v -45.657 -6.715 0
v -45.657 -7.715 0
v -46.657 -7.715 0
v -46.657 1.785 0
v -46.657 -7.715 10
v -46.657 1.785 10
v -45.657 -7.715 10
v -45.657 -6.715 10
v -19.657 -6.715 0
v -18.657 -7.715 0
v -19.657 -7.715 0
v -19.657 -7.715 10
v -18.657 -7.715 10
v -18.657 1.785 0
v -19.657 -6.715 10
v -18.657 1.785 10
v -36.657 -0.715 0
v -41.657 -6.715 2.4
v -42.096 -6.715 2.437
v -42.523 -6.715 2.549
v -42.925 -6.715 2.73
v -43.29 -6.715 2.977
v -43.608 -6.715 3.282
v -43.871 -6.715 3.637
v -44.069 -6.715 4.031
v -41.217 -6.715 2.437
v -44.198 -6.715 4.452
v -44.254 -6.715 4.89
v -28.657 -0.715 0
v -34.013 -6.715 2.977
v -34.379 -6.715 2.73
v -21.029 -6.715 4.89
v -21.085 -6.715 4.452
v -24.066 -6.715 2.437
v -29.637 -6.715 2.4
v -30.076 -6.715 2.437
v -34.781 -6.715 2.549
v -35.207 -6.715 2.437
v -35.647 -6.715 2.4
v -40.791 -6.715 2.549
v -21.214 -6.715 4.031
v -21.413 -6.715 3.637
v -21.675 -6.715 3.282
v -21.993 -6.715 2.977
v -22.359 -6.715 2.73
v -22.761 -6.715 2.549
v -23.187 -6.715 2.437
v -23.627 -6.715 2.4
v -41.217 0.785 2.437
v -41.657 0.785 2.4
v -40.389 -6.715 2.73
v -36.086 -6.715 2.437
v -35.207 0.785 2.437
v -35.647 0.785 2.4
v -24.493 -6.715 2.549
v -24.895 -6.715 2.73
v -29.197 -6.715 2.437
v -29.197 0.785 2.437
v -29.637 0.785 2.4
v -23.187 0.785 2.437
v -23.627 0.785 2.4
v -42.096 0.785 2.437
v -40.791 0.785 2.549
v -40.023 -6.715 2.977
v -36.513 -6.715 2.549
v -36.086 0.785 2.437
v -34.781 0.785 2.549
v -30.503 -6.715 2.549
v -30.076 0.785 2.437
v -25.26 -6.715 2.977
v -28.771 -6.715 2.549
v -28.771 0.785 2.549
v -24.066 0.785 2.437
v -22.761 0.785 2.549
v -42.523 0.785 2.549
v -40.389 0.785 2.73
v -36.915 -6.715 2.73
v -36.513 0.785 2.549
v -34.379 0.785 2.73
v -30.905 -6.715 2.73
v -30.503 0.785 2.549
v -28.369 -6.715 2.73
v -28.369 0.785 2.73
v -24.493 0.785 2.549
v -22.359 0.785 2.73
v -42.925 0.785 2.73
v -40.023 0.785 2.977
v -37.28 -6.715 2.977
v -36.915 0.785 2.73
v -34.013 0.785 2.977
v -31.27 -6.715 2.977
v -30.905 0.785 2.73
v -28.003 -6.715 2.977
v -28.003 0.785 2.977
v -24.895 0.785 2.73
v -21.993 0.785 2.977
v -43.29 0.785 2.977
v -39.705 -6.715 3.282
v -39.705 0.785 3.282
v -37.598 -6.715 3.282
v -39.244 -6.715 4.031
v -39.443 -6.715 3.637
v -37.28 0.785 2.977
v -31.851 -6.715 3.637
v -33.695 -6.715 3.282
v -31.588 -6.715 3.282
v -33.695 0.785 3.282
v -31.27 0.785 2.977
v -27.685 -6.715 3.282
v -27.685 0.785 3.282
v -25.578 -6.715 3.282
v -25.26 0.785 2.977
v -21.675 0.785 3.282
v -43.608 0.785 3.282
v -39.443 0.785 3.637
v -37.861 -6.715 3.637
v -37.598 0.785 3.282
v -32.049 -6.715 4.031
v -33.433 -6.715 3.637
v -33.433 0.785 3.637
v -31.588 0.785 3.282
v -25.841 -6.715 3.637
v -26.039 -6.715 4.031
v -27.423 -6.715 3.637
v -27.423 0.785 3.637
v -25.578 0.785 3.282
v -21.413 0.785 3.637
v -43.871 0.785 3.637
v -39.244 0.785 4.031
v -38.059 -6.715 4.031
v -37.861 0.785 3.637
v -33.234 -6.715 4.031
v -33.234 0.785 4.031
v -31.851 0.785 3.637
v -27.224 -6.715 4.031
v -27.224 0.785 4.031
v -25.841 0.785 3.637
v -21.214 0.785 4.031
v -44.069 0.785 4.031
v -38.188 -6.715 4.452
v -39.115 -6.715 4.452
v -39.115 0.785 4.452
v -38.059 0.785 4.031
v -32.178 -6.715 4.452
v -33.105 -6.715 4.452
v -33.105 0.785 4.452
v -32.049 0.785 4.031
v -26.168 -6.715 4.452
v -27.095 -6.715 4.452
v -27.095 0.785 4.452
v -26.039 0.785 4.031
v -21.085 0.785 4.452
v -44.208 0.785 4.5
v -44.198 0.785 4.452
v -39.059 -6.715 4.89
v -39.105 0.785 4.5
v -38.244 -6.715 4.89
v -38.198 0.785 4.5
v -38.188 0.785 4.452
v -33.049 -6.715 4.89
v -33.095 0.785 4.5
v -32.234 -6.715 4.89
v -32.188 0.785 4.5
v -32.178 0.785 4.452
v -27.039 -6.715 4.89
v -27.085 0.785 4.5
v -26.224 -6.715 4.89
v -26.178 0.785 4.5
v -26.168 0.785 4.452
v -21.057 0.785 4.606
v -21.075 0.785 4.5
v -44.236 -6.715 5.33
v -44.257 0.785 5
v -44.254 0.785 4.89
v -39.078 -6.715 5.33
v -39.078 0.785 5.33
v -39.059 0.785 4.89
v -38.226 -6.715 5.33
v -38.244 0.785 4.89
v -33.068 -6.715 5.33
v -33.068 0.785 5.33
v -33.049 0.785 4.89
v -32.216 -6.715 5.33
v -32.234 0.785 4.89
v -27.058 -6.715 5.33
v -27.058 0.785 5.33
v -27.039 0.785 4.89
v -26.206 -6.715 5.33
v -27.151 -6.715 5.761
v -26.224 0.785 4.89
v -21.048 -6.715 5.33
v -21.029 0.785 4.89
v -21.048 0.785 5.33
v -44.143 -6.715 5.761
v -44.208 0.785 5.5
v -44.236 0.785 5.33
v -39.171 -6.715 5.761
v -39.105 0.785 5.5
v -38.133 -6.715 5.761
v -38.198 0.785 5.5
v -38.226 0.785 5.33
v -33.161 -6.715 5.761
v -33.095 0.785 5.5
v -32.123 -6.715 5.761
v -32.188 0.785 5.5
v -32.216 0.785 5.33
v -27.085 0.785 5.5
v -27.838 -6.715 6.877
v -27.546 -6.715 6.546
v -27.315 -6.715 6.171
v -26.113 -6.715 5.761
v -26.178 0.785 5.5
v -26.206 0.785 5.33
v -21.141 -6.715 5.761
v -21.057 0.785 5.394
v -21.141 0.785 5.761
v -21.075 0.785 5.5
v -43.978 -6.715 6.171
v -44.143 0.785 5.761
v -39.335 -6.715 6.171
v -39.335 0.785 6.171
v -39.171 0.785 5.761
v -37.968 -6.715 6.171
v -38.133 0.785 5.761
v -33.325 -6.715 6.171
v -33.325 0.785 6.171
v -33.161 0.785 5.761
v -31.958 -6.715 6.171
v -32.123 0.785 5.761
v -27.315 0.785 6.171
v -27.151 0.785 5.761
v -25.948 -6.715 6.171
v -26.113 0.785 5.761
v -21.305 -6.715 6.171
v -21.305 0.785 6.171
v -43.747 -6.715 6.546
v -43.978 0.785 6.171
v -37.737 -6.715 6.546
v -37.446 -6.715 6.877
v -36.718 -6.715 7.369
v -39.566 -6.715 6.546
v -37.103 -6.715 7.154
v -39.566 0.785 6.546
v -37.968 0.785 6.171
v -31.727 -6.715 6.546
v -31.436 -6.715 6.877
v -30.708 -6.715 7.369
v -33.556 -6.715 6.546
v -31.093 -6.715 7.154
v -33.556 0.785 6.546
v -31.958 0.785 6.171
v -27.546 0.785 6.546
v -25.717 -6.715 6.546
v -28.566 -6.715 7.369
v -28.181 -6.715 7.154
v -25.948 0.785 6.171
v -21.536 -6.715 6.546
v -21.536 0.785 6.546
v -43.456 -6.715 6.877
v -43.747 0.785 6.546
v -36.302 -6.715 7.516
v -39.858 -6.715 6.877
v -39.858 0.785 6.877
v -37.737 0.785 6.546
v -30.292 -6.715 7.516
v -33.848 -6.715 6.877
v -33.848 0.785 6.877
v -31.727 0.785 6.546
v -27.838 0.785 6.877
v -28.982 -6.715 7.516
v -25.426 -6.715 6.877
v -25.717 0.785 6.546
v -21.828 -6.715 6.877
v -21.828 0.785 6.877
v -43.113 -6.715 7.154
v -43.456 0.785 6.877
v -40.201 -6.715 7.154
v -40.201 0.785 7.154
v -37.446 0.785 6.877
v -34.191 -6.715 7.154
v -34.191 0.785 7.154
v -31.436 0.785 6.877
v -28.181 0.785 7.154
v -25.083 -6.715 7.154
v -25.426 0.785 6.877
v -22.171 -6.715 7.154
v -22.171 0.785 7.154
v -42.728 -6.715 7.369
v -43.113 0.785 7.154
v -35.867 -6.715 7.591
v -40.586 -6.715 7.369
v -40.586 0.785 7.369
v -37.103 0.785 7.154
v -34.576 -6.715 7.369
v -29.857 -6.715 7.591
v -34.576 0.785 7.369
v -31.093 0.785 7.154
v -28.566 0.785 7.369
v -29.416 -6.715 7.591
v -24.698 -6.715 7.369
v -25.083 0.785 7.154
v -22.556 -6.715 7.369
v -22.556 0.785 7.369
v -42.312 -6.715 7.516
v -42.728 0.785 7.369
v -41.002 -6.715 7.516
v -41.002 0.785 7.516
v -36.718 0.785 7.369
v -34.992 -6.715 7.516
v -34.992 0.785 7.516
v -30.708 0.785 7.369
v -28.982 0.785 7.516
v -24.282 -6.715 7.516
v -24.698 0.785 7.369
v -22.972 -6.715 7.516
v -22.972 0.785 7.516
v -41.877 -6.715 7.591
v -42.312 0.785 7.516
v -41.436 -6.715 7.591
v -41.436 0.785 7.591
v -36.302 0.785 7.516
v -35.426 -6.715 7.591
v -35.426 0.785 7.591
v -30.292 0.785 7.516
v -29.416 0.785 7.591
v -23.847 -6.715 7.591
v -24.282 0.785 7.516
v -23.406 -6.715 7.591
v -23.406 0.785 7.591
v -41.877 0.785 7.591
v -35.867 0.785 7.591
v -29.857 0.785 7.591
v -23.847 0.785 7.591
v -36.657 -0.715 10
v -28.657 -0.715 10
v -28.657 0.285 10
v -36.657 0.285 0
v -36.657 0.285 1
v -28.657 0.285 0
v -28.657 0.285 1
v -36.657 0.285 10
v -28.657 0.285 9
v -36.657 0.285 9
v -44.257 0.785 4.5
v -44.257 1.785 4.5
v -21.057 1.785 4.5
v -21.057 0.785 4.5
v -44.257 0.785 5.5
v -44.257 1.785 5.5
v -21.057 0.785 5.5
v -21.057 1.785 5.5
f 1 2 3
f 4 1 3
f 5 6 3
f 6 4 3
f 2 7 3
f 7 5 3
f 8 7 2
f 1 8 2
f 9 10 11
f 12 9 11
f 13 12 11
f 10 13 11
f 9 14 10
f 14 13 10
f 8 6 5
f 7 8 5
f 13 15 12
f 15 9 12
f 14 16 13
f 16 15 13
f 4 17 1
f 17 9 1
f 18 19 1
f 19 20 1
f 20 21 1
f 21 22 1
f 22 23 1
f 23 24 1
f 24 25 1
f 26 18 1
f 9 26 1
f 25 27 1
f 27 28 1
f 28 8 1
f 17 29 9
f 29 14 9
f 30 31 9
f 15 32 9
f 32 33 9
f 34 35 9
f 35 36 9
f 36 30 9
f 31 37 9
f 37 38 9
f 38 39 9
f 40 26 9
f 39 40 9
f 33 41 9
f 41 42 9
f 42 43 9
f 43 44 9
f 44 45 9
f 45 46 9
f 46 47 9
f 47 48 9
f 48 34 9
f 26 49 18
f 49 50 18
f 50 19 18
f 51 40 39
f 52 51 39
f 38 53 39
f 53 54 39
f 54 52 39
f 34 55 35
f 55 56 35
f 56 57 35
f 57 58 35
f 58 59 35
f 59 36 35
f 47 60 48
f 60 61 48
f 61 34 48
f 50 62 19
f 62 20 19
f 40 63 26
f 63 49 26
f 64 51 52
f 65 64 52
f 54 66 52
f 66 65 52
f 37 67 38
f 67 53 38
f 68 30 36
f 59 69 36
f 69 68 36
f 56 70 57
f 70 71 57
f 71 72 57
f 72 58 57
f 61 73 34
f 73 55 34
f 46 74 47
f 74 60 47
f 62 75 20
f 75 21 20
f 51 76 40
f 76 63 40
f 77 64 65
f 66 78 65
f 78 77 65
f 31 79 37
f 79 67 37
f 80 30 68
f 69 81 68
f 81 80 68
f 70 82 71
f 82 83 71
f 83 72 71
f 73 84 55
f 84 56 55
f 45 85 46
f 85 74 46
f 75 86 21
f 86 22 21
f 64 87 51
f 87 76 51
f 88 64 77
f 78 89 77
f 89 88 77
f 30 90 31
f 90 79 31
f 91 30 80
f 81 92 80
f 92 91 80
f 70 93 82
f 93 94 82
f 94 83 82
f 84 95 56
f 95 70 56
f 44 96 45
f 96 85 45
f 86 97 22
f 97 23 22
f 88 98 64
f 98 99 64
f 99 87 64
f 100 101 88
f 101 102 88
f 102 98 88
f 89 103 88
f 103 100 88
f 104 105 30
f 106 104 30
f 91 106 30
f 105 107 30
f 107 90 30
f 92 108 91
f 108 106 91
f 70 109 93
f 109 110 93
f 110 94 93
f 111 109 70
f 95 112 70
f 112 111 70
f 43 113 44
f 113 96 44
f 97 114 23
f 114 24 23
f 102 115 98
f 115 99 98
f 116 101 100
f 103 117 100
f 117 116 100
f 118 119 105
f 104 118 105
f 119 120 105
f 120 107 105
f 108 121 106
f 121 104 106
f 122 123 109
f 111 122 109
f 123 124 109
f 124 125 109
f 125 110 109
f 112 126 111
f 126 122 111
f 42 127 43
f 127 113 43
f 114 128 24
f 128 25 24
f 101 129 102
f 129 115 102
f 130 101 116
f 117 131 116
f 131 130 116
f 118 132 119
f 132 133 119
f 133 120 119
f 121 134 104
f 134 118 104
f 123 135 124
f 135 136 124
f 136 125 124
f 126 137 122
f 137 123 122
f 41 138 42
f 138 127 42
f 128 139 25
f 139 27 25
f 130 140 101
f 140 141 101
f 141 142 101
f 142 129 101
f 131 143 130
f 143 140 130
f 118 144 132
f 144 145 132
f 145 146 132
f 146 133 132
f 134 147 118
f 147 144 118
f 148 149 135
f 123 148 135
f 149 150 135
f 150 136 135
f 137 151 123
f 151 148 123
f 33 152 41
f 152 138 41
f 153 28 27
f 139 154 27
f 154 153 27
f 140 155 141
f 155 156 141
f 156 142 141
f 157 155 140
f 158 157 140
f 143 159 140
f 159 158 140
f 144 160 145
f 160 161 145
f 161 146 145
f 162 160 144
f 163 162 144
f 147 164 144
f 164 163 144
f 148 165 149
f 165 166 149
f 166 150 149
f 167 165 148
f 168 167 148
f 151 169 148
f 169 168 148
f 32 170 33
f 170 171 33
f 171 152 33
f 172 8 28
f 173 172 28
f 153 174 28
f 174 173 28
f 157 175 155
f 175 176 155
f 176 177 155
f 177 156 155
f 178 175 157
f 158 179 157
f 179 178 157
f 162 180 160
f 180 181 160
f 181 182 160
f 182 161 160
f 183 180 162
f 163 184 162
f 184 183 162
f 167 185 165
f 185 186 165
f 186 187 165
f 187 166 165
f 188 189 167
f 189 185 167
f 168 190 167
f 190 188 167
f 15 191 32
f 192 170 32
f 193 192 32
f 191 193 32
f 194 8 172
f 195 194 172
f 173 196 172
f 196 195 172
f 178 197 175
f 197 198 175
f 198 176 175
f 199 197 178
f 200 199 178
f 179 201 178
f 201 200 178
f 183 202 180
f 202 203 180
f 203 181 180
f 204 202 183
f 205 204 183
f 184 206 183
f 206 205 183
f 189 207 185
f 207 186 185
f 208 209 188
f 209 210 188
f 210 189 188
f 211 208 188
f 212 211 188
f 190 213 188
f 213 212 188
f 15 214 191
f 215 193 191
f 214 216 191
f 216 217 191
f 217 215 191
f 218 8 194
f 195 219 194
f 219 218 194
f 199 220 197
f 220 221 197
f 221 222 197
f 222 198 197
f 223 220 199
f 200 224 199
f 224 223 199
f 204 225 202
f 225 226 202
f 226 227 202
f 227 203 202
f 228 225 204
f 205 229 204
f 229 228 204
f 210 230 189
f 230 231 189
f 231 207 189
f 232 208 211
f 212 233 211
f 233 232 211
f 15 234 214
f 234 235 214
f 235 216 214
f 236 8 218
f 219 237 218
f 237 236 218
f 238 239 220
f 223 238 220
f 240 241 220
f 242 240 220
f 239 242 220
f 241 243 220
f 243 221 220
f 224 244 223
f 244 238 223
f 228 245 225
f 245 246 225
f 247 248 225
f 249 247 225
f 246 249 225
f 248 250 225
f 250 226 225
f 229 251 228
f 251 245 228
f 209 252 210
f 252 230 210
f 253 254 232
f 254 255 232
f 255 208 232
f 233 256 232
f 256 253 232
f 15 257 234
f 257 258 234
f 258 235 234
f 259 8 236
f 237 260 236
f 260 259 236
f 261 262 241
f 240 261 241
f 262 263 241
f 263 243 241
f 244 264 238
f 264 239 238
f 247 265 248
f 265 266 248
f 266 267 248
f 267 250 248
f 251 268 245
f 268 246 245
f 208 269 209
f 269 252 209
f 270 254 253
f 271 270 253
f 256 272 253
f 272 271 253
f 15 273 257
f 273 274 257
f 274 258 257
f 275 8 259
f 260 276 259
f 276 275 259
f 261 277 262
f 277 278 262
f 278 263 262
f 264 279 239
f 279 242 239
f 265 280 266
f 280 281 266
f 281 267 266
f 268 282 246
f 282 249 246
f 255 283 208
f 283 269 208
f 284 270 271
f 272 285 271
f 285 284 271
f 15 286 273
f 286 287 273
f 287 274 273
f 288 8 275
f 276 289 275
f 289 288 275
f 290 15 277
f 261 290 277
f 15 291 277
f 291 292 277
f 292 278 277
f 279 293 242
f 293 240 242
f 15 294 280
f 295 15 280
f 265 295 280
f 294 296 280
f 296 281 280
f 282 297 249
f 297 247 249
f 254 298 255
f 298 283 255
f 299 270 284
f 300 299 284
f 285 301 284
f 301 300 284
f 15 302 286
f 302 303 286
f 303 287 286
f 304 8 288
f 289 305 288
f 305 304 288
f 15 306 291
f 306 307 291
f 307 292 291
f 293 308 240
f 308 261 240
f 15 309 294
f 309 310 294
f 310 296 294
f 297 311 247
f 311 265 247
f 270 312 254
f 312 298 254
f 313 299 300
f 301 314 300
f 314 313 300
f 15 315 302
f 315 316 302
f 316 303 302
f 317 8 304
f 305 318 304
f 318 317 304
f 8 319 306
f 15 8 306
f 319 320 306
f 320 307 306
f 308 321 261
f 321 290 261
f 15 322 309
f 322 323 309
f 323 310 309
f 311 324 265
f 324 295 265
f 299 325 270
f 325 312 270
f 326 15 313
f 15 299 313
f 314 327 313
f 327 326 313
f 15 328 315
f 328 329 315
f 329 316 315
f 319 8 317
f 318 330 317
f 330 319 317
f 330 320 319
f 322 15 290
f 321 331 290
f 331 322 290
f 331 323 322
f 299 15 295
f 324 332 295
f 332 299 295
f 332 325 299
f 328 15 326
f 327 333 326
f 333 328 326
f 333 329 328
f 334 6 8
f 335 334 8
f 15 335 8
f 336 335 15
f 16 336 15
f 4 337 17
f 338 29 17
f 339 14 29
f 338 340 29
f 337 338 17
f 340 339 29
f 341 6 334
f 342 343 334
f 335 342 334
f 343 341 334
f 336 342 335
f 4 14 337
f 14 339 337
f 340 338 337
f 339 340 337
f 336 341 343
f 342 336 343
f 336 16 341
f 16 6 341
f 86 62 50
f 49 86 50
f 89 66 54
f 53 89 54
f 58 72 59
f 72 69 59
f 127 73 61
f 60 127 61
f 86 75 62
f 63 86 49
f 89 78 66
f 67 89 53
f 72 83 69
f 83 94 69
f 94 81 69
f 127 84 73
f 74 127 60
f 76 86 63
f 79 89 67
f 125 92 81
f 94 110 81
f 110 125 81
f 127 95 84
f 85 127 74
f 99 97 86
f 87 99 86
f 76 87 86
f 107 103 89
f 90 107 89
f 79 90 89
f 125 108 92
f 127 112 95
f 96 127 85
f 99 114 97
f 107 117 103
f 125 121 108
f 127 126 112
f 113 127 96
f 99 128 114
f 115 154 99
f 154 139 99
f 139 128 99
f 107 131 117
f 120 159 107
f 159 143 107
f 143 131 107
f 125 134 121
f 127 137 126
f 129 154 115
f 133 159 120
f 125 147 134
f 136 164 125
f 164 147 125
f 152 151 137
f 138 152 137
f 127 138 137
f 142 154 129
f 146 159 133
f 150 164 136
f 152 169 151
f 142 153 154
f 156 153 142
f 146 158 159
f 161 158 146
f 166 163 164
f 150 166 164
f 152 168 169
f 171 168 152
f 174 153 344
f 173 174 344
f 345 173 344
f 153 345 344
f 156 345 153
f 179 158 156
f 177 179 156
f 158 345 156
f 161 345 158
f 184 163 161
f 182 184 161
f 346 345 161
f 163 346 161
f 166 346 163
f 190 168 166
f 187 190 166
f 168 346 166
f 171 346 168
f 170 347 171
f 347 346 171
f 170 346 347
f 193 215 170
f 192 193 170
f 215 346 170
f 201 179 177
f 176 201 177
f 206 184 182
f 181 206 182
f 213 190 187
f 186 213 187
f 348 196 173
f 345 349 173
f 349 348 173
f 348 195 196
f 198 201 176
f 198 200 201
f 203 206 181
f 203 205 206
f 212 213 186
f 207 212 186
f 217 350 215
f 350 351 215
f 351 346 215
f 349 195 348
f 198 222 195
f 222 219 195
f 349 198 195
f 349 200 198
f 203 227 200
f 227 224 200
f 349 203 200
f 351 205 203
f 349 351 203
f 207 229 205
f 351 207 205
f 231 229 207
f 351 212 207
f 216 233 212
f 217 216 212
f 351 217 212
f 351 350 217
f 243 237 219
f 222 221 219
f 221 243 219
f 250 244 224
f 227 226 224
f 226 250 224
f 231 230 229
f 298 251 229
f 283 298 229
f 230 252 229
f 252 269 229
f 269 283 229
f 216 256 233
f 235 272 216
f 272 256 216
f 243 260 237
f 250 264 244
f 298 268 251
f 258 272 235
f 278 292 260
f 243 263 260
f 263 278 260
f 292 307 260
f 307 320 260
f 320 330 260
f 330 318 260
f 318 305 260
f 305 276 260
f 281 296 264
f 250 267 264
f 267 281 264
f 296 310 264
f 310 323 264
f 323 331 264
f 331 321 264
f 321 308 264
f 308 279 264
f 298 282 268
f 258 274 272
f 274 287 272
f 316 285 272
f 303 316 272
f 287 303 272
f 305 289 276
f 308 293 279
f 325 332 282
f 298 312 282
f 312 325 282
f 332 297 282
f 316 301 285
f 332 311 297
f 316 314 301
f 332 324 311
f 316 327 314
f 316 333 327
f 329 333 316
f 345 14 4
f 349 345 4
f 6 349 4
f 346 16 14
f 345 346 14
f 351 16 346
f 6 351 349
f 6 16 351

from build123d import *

# Parameters (mm, degrees)
SKICA1_W                 = 28
SKICA1_H                 = 8.5
P_IDAT_VYSUNUT_M1_DEPTH  = 10
SKICA3_R                 = 2.6
ODEBRAT_VYSUNUT_M2_DEPTH = 7.5
SKICA4_W                 = 23.2
SKICA4_H                 = 1
ODEBRAT_VYSUNUT_M3_DEPTH = 1
SKICA5_W                 = 1
SKICA5_H                 = 10
P_IDAT_VYSUNUT_M2_DEPTH  = 1
ODEBRAT_START            = -10
ODEBRAT_VYSUNUT_M5_DEPTH = 8


with BuildPart() as part:
    # Skica1 → Přidat vysunutím1 (new body)
    with BuildSketch(Plane.XY):
        with Locations((-32.656744291, -2.464704976)):
            Rectangle(SKICA1_W, SKICA1_H)
    extrude(amount=P_IDAT_VYSUNUT_M1_DEPTH)

    # Skica3 → Odebrat vysunutím2 (cut)
    with BuildSketch(Plane(origin=(0, -6.714704976, 0), x_dir=(-1, 0, 0), z_dir=(0, -1, 0))):
        with Locations((41.656744291, -5)):
            Circle(SKICA3_R)
        with Locations((35.646744291, -5)):
            Circle(SKICA3_R)
        with Locations((29.636744291, -5)):
            Circle(SKICA3_R)
        with Locations((23.626744291, -5)):
            Circle(SKICA3_R)
    extrude(amount=-ODEBRAT_VYSUNUT_M2_DEPTH, mode=Mode.SUBTRACT)

    # Skica4 → Odebrat vysunutím3 (cut)
    with BuildSketch(Plane(origin=(0, 1.785295024, 0), x_dir=(1, 0, 0), z_dir=(0, 1, 0))):
        with Locations((-32.656744291, -5)):
            Rectangle(SKICA4_W, SKICA4_H)
    extrude(amount=-ODEBRAT_VYSUNUT_M3_DEPTH, mode=Mode.SUBTRACT)

    # Skica5 → Přidat vysunutím2 (add)
    with BuildSketch(Plane(origin=(0, -6.714704976, 0), x_dir=(-1, 0, 0), z_dir=(0, -1, 0))):
        with Locations((46.156744291, -5)):
            Rectangle(SKICA5_W, SKICA5_H)
        with Locations((19.156744291, -5)):
            Rectangle(SKICA5_W, SKICA5_H)
    extrude(amount=P_IDAT_VYSUNUT_M2_DEPTH)

    # Skica9 → Odebrat vysunutím5 (cut)
    with BuildSketch(Plane(origin=(-18.656744291, 0, 0), x_dir=(0, 0, -1), z_dir=(1, 0, 0)).offset(ODEBRAT_START)):
        Polygon((-10, 0.285295024), (-9, 0.285295024), (-10, -0.714704976), align=None)
        Polygon((0, 0.285295024), (-1, 0.285295024), (0, -0.714704976), align=None)
    extrude(amount=-ODEBRAT_VYSUNUT_M5_DEPTH, mode=Mode.SUBTRACT)


solid = part.part
